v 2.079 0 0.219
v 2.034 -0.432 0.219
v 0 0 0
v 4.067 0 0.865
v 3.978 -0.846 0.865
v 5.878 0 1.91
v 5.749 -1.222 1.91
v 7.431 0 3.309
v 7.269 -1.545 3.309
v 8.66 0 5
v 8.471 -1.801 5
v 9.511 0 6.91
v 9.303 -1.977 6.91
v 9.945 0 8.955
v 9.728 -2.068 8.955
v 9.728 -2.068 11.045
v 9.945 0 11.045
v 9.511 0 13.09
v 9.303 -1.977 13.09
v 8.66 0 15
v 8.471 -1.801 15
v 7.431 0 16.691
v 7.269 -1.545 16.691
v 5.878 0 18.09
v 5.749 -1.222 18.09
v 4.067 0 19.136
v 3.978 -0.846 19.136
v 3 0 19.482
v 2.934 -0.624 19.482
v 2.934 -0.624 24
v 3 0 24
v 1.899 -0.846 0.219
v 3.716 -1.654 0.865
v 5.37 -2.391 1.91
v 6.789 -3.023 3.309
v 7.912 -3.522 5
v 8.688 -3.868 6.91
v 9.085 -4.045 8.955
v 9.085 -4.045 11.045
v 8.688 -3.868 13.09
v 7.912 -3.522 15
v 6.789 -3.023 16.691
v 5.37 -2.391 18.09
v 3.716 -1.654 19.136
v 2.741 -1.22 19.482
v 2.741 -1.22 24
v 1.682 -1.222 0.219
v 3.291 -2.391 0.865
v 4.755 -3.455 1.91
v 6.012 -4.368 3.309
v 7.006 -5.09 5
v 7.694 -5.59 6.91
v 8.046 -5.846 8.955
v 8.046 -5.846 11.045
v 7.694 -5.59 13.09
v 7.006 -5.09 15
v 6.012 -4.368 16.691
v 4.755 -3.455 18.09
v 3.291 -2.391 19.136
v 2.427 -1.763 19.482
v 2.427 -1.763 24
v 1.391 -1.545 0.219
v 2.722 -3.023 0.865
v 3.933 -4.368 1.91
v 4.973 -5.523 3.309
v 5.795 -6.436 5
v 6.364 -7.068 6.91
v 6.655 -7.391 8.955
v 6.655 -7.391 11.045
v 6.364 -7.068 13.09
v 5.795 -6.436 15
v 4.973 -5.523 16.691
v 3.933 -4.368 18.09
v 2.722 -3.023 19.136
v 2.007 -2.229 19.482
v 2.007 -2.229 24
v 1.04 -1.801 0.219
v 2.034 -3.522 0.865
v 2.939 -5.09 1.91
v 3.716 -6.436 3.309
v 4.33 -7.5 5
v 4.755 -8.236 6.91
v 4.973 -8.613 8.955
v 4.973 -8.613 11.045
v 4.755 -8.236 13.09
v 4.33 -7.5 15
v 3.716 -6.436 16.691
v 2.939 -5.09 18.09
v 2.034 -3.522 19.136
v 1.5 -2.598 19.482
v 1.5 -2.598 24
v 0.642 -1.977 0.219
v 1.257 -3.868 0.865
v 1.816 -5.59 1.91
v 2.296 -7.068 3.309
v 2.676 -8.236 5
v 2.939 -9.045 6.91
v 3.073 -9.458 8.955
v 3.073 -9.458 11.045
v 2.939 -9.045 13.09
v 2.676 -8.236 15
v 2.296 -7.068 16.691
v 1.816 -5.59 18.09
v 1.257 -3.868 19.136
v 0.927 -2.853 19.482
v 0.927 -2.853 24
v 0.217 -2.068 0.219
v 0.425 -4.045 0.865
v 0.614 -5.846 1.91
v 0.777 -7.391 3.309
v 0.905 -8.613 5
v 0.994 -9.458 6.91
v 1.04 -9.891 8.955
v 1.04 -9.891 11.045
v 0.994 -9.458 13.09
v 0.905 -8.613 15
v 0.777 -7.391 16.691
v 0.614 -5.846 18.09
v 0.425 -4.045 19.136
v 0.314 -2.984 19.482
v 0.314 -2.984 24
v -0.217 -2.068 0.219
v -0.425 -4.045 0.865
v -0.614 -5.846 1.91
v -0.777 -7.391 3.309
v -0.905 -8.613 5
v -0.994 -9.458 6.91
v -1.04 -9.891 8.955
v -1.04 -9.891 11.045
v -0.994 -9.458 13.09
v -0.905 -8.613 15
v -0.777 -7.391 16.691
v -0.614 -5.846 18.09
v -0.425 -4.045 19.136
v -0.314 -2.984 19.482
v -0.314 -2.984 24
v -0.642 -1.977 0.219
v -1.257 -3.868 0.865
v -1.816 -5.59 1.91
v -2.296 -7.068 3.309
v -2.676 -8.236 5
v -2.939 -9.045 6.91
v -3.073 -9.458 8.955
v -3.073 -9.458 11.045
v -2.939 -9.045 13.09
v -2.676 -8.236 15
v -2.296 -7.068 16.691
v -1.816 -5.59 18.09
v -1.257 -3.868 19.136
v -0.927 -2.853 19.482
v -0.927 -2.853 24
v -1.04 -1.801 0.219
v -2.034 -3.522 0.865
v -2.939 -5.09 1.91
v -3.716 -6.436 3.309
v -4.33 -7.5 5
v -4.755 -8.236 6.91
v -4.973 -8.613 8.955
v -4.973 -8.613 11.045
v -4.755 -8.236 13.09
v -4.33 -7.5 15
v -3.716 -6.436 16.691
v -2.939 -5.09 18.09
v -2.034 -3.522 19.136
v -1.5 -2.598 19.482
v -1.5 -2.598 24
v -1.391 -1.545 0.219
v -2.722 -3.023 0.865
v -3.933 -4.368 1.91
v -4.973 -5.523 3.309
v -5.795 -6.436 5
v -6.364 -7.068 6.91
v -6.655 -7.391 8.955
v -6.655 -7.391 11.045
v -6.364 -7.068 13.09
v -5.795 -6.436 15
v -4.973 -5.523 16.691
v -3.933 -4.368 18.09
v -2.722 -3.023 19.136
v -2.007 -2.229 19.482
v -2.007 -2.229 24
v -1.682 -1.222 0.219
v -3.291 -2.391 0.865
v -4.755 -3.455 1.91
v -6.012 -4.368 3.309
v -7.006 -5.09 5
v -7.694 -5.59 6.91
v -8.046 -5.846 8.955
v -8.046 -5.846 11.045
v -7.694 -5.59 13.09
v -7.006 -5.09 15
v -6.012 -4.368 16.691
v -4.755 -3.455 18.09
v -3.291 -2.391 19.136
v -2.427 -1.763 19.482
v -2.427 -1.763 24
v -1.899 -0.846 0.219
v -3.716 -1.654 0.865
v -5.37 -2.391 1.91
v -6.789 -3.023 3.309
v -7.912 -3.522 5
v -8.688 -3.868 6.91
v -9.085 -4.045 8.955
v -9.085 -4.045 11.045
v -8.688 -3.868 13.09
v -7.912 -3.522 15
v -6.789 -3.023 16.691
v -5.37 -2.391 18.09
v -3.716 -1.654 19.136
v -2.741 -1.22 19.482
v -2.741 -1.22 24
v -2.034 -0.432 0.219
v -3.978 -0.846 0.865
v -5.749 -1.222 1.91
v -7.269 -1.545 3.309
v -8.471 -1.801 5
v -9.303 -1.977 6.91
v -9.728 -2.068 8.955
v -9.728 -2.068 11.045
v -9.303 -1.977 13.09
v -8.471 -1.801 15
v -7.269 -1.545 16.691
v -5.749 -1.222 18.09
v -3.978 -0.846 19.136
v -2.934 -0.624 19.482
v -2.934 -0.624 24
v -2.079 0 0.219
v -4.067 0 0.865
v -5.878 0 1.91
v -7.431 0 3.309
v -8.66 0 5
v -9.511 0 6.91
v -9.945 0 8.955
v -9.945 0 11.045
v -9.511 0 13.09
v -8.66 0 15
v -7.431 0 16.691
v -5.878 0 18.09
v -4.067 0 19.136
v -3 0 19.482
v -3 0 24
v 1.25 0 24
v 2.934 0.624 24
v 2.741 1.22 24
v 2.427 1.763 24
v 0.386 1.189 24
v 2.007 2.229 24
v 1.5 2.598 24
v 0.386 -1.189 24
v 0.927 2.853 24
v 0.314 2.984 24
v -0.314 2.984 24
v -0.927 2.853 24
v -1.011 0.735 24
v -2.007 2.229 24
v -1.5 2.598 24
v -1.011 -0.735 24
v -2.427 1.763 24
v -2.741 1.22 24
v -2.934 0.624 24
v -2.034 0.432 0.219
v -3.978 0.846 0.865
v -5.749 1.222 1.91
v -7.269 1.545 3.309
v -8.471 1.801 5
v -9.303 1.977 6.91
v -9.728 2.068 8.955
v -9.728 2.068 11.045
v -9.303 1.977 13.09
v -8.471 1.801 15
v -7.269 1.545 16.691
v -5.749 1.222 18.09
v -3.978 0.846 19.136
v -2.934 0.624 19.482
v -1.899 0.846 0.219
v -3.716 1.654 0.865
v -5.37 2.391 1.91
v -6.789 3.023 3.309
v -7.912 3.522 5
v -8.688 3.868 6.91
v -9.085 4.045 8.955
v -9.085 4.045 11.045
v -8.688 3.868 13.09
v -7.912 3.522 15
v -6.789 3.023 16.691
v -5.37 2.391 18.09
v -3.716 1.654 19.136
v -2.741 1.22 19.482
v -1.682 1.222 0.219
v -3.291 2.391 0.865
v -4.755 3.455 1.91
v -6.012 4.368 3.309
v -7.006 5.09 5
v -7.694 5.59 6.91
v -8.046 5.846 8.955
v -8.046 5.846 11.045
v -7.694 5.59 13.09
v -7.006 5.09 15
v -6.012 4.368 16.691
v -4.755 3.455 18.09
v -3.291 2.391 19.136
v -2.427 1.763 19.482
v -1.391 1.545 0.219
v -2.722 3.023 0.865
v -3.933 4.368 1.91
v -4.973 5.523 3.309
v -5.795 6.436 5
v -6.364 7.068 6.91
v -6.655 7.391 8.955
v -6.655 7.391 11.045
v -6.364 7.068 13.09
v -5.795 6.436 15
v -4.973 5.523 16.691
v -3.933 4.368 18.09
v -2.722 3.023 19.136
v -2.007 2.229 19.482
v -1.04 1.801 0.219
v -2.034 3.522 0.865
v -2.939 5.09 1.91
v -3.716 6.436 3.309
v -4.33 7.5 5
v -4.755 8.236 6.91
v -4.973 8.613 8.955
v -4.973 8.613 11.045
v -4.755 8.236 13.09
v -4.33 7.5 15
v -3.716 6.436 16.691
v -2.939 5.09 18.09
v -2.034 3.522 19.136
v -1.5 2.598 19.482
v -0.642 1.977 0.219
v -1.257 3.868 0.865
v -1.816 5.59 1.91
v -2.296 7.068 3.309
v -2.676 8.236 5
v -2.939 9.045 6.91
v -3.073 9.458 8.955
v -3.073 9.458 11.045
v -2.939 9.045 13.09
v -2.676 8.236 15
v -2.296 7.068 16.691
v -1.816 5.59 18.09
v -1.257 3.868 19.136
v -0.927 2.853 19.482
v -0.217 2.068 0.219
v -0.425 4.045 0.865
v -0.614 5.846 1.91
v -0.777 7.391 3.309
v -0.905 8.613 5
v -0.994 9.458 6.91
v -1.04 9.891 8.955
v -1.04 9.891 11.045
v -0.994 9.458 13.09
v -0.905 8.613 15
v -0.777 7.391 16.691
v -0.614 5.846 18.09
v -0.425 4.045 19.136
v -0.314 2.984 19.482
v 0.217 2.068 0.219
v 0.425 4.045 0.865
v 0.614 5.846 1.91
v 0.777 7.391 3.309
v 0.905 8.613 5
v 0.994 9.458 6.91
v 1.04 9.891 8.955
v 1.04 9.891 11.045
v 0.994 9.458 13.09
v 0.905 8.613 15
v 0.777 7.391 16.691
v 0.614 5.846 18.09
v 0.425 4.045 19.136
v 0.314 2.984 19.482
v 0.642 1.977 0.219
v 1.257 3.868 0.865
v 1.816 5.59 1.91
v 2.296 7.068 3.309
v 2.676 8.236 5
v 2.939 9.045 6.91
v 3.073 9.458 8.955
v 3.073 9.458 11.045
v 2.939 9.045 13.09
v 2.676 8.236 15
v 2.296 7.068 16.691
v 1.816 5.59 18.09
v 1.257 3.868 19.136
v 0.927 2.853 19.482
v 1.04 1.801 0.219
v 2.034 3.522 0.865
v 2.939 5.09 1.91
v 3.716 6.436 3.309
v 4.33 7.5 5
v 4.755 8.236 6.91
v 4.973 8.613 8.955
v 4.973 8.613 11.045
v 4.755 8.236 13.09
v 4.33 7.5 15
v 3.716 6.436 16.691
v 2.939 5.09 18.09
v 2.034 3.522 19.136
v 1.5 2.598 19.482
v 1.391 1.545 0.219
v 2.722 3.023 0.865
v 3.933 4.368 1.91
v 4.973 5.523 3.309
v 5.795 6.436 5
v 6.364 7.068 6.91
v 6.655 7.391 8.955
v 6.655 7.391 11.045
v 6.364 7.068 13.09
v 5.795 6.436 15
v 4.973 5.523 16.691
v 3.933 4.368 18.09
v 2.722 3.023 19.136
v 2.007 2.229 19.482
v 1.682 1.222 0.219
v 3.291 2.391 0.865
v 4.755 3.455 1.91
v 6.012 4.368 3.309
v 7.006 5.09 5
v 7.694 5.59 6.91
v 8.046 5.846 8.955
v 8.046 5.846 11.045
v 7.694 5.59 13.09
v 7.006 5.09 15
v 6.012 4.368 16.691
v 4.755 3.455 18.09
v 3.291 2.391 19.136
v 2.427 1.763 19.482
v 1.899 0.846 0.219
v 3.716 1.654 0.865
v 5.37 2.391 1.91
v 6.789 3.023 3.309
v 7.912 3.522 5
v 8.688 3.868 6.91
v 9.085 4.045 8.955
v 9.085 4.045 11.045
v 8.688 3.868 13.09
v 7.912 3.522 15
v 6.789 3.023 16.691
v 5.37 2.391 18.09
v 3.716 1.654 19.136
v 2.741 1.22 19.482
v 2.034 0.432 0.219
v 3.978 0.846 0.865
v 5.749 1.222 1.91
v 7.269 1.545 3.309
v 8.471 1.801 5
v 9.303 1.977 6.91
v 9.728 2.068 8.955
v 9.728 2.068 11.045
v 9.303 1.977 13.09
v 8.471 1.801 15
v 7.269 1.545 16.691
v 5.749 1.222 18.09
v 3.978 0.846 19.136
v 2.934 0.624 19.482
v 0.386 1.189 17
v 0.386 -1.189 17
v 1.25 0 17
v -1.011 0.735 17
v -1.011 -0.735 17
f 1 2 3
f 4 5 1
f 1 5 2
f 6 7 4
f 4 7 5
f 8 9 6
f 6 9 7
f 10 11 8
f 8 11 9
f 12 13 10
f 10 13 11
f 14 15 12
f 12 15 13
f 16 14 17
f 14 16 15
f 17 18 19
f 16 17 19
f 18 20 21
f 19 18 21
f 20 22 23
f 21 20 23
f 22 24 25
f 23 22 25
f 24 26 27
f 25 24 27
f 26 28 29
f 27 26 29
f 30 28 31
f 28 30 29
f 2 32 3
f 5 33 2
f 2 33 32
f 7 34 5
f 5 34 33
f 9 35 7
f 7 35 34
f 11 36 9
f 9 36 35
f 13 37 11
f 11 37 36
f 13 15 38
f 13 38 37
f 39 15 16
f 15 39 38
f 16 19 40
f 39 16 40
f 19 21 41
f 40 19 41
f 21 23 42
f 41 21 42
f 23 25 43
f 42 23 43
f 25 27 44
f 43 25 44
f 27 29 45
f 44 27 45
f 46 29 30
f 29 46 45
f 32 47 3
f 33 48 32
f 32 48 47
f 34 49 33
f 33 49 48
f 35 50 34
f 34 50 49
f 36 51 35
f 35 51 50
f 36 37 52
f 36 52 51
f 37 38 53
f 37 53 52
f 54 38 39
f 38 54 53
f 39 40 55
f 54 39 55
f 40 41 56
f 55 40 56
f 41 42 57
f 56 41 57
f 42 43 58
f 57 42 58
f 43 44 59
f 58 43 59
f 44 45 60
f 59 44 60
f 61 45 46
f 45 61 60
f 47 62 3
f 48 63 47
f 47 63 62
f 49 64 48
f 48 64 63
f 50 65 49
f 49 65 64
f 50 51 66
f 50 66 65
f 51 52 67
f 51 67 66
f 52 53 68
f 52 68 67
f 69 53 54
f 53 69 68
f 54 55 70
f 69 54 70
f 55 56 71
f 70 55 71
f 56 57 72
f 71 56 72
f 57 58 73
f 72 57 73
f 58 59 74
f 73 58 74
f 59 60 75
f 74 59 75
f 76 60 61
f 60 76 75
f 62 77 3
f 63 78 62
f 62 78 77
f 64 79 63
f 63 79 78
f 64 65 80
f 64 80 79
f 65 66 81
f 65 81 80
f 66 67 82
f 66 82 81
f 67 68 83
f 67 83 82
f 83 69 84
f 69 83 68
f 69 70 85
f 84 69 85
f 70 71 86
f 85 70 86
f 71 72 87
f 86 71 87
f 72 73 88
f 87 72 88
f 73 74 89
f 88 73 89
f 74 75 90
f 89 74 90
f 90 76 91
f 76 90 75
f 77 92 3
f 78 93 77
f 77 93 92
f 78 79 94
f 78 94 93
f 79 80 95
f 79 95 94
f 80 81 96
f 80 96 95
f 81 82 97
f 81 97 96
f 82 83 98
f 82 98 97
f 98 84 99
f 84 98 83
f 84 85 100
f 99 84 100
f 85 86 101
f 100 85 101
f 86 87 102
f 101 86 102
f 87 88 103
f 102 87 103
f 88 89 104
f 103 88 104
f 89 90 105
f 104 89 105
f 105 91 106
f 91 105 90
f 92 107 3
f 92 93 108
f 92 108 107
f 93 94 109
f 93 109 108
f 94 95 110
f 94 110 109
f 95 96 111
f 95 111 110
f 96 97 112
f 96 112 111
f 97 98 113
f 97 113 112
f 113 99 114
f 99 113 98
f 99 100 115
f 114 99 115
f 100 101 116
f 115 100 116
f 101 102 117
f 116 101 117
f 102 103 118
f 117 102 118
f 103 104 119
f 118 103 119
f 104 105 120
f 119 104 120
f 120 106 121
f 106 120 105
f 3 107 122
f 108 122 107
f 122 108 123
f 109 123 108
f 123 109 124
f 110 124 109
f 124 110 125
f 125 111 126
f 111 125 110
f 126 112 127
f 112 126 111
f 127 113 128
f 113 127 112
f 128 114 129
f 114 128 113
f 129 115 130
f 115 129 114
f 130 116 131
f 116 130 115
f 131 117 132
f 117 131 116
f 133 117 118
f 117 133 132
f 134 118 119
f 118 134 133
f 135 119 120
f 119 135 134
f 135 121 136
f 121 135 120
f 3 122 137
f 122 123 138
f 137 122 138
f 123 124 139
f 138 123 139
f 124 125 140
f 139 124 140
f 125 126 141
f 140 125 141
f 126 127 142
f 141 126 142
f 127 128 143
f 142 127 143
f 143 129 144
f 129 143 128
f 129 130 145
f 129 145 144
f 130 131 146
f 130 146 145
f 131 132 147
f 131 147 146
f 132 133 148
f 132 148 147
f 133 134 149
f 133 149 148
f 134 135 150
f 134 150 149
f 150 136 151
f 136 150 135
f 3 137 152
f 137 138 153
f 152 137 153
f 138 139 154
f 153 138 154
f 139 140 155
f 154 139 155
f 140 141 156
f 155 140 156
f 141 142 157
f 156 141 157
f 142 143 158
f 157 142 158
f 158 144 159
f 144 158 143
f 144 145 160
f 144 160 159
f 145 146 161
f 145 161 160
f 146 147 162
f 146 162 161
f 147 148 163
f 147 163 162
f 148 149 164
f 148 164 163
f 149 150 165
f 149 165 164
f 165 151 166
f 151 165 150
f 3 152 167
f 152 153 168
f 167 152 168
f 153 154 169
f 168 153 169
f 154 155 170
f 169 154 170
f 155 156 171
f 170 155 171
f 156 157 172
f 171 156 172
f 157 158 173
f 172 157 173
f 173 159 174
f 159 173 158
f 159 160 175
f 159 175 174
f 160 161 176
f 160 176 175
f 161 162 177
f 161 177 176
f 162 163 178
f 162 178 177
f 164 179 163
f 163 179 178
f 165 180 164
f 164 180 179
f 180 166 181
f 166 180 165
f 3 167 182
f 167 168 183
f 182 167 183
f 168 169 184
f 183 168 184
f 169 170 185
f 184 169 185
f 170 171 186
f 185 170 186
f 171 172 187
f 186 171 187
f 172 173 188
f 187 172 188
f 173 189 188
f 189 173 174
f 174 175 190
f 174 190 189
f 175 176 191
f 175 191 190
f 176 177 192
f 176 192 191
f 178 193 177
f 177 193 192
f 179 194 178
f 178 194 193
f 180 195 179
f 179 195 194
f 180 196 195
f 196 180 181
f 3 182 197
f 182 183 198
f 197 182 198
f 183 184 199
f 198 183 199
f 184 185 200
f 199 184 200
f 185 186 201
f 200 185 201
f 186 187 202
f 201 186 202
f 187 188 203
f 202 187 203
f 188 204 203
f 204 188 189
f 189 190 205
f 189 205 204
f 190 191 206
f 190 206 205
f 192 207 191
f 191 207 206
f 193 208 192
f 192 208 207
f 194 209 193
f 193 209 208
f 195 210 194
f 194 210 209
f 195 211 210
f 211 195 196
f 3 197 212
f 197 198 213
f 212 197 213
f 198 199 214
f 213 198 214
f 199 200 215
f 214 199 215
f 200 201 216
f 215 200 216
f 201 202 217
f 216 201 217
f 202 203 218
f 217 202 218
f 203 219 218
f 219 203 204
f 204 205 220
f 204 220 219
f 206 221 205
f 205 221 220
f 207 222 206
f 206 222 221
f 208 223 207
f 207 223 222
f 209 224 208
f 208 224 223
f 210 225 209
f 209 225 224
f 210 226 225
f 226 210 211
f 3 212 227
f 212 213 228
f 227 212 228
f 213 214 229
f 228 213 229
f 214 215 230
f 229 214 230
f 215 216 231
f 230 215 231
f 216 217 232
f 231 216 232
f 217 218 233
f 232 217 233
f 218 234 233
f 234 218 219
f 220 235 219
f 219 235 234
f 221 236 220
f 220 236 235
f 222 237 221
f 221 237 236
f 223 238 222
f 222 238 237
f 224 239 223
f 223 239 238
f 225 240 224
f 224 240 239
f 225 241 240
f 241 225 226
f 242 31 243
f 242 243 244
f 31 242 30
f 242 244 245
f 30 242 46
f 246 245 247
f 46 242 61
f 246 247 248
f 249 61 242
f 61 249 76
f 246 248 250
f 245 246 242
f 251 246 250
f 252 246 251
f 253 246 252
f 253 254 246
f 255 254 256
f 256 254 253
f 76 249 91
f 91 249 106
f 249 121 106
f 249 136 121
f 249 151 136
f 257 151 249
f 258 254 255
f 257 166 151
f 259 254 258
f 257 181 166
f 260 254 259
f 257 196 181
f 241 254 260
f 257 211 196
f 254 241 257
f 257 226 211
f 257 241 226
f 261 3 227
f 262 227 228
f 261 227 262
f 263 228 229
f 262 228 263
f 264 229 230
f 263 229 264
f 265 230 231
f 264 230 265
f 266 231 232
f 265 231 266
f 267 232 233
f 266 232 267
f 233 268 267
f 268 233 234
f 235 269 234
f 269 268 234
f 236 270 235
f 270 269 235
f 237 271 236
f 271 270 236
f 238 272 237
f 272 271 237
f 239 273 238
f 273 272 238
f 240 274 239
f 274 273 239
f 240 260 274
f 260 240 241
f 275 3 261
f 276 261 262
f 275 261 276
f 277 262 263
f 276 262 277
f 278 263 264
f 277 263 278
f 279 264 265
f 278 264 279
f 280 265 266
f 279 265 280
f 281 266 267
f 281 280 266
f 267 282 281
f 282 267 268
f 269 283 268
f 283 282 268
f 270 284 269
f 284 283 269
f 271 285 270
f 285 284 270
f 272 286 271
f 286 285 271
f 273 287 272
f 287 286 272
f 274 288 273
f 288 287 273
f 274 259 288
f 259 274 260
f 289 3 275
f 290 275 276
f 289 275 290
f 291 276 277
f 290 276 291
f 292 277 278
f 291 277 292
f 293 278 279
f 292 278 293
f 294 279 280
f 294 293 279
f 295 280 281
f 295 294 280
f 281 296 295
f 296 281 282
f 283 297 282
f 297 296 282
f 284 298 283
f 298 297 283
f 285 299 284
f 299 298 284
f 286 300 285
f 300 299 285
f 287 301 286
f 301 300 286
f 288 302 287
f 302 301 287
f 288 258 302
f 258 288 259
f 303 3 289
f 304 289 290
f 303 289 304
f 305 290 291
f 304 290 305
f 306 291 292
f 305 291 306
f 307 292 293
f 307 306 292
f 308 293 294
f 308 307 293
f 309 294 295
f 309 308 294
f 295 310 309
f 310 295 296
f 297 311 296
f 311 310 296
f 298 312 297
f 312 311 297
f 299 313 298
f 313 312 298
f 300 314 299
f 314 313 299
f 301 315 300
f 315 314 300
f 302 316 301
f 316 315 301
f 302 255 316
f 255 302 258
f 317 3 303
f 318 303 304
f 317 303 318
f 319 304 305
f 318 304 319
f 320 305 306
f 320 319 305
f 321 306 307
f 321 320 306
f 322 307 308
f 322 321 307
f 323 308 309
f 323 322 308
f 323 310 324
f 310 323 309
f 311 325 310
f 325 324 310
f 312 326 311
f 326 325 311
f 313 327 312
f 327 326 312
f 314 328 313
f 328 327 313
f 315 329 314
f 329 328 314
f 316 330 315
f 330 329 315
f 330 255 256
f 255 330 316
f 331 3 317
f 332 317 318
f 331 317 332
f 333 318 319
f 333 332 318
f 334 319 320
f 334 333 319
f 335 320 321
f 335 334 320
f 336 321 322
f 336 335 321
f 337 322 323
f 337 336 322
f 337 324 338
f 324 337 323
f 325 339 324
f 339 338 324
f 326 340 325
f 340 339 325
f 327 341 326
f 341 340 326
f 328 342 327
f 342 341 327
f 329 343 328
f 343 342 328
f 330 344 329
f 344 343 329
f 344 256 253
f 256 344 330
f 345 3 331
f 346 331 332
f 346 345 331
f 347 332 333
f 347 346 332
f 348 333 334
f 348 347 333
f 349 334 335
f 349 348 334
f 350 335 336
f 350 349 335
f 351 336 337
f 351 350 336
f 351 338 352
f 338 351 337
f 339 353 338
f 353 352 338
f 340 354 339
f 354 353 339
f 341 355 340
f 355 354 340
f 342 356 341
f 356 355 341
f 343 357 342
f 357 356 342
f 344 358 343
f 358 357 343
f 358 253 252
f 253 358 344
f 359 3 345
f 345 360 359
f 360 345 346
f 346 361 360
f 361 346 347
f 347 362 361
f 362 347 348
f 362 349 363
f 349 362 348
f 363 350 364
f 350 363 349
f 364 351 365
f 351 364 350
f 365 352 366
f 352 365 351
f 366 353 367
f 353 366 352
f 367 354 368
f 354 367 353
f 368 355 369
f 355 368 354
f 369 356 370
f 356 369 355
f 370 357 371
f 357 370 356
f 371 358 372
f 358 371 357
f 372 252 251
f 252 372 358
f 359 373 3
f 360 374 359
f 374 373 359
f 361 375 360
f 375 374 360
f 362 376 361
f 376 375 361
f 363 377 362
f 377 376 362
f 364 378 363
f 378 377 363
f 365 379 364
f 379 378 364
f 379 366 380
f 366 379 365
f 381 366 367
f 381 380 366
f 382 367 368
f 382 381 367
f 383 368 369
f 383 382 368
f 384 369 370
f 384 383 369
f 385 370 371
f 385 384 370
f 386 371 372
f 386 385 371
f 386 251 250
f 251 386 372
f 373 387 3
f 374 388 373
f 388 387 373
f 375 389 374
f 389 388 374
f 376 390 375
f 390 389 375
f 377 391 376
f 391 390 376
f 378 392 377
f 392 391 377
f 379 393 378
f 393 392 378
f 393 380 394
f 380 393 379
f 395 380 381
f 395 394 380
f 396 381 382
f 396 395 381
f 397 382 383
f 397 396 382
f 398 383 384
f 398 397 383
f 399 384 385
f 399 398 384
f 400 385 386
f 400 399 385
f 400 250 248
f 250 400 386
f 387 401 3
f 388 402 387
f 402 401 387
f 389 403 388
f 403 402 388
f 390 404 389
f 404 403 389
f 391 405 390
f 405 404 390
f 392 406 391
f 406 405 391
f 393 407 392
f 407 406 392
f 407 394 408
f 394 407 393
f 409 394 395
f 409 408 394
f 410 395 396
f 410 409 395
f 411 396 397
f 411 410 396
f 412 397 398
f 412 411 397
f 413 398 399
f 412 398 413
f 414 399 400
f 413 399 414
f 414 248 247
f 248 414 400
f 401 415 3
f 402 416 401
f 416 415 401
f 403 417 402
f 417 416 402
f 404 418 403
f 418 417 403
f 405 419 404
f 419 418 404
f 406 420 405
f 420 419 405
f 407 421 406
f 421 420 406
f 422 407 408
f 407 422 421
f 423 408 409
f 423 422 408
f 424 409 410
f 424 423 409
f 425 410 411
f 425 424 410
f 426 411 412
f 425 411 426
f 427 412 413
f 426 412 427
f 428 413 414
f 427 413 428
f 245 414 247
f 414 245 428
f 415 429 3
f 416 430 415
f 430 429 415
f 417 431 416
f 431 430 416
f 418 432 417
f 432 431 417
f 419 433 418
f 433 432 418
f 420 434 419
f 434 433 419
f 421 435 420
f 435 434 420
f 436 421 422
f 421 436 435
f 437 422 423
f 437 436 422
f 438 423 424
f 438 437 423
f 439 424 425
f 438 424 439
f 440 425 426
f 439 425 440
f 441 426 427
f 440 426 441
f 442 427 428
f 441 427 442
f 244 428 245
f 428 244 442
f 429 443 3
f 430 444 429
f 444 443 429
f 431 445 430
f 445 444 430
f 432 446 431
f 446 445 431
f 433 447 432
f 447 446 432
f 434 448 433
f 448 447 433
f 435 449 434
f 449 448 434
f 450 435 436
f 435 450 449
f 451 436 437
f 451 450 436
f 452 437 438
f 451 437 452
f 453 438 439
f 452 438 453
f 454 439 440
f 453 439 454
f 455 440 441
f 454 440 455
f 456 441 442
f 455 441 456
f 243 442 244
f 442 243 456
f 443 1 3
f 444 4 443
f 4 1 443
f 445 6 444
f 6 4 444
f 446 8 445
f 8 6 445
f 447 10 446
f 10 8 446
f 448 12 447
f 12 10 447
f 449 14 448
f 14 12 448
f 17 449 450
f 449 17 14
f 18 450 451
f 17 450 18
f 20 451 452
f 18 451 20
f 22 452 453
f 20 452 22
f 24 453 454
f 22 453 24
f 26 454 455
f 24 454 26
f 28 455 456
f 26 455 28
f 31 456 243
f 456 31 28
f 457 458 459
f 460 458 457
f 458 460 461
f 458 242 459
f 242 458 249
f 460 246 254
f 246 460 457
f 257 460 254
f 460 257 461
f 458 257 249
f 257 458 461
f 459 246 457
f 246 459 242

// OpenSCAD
difference(){
rotate_extrude(angle=360, convexity=10){
    rotate([0,0,90]){
translate([10,0,0]){
difference(){
circle(10);
    translate([0,-10,0]){
    square([20,20], center=true);
    }
}
translate([8,0,0]){
    square([6,3], center=false);
}
}
}
}
color("#FF0000"){
translate([0,0,21]){
    linear_extrude(height=8,center=true,convexity=10,twist=0,slices=8){
    circle(d=2.5);
    }
}
}
}
